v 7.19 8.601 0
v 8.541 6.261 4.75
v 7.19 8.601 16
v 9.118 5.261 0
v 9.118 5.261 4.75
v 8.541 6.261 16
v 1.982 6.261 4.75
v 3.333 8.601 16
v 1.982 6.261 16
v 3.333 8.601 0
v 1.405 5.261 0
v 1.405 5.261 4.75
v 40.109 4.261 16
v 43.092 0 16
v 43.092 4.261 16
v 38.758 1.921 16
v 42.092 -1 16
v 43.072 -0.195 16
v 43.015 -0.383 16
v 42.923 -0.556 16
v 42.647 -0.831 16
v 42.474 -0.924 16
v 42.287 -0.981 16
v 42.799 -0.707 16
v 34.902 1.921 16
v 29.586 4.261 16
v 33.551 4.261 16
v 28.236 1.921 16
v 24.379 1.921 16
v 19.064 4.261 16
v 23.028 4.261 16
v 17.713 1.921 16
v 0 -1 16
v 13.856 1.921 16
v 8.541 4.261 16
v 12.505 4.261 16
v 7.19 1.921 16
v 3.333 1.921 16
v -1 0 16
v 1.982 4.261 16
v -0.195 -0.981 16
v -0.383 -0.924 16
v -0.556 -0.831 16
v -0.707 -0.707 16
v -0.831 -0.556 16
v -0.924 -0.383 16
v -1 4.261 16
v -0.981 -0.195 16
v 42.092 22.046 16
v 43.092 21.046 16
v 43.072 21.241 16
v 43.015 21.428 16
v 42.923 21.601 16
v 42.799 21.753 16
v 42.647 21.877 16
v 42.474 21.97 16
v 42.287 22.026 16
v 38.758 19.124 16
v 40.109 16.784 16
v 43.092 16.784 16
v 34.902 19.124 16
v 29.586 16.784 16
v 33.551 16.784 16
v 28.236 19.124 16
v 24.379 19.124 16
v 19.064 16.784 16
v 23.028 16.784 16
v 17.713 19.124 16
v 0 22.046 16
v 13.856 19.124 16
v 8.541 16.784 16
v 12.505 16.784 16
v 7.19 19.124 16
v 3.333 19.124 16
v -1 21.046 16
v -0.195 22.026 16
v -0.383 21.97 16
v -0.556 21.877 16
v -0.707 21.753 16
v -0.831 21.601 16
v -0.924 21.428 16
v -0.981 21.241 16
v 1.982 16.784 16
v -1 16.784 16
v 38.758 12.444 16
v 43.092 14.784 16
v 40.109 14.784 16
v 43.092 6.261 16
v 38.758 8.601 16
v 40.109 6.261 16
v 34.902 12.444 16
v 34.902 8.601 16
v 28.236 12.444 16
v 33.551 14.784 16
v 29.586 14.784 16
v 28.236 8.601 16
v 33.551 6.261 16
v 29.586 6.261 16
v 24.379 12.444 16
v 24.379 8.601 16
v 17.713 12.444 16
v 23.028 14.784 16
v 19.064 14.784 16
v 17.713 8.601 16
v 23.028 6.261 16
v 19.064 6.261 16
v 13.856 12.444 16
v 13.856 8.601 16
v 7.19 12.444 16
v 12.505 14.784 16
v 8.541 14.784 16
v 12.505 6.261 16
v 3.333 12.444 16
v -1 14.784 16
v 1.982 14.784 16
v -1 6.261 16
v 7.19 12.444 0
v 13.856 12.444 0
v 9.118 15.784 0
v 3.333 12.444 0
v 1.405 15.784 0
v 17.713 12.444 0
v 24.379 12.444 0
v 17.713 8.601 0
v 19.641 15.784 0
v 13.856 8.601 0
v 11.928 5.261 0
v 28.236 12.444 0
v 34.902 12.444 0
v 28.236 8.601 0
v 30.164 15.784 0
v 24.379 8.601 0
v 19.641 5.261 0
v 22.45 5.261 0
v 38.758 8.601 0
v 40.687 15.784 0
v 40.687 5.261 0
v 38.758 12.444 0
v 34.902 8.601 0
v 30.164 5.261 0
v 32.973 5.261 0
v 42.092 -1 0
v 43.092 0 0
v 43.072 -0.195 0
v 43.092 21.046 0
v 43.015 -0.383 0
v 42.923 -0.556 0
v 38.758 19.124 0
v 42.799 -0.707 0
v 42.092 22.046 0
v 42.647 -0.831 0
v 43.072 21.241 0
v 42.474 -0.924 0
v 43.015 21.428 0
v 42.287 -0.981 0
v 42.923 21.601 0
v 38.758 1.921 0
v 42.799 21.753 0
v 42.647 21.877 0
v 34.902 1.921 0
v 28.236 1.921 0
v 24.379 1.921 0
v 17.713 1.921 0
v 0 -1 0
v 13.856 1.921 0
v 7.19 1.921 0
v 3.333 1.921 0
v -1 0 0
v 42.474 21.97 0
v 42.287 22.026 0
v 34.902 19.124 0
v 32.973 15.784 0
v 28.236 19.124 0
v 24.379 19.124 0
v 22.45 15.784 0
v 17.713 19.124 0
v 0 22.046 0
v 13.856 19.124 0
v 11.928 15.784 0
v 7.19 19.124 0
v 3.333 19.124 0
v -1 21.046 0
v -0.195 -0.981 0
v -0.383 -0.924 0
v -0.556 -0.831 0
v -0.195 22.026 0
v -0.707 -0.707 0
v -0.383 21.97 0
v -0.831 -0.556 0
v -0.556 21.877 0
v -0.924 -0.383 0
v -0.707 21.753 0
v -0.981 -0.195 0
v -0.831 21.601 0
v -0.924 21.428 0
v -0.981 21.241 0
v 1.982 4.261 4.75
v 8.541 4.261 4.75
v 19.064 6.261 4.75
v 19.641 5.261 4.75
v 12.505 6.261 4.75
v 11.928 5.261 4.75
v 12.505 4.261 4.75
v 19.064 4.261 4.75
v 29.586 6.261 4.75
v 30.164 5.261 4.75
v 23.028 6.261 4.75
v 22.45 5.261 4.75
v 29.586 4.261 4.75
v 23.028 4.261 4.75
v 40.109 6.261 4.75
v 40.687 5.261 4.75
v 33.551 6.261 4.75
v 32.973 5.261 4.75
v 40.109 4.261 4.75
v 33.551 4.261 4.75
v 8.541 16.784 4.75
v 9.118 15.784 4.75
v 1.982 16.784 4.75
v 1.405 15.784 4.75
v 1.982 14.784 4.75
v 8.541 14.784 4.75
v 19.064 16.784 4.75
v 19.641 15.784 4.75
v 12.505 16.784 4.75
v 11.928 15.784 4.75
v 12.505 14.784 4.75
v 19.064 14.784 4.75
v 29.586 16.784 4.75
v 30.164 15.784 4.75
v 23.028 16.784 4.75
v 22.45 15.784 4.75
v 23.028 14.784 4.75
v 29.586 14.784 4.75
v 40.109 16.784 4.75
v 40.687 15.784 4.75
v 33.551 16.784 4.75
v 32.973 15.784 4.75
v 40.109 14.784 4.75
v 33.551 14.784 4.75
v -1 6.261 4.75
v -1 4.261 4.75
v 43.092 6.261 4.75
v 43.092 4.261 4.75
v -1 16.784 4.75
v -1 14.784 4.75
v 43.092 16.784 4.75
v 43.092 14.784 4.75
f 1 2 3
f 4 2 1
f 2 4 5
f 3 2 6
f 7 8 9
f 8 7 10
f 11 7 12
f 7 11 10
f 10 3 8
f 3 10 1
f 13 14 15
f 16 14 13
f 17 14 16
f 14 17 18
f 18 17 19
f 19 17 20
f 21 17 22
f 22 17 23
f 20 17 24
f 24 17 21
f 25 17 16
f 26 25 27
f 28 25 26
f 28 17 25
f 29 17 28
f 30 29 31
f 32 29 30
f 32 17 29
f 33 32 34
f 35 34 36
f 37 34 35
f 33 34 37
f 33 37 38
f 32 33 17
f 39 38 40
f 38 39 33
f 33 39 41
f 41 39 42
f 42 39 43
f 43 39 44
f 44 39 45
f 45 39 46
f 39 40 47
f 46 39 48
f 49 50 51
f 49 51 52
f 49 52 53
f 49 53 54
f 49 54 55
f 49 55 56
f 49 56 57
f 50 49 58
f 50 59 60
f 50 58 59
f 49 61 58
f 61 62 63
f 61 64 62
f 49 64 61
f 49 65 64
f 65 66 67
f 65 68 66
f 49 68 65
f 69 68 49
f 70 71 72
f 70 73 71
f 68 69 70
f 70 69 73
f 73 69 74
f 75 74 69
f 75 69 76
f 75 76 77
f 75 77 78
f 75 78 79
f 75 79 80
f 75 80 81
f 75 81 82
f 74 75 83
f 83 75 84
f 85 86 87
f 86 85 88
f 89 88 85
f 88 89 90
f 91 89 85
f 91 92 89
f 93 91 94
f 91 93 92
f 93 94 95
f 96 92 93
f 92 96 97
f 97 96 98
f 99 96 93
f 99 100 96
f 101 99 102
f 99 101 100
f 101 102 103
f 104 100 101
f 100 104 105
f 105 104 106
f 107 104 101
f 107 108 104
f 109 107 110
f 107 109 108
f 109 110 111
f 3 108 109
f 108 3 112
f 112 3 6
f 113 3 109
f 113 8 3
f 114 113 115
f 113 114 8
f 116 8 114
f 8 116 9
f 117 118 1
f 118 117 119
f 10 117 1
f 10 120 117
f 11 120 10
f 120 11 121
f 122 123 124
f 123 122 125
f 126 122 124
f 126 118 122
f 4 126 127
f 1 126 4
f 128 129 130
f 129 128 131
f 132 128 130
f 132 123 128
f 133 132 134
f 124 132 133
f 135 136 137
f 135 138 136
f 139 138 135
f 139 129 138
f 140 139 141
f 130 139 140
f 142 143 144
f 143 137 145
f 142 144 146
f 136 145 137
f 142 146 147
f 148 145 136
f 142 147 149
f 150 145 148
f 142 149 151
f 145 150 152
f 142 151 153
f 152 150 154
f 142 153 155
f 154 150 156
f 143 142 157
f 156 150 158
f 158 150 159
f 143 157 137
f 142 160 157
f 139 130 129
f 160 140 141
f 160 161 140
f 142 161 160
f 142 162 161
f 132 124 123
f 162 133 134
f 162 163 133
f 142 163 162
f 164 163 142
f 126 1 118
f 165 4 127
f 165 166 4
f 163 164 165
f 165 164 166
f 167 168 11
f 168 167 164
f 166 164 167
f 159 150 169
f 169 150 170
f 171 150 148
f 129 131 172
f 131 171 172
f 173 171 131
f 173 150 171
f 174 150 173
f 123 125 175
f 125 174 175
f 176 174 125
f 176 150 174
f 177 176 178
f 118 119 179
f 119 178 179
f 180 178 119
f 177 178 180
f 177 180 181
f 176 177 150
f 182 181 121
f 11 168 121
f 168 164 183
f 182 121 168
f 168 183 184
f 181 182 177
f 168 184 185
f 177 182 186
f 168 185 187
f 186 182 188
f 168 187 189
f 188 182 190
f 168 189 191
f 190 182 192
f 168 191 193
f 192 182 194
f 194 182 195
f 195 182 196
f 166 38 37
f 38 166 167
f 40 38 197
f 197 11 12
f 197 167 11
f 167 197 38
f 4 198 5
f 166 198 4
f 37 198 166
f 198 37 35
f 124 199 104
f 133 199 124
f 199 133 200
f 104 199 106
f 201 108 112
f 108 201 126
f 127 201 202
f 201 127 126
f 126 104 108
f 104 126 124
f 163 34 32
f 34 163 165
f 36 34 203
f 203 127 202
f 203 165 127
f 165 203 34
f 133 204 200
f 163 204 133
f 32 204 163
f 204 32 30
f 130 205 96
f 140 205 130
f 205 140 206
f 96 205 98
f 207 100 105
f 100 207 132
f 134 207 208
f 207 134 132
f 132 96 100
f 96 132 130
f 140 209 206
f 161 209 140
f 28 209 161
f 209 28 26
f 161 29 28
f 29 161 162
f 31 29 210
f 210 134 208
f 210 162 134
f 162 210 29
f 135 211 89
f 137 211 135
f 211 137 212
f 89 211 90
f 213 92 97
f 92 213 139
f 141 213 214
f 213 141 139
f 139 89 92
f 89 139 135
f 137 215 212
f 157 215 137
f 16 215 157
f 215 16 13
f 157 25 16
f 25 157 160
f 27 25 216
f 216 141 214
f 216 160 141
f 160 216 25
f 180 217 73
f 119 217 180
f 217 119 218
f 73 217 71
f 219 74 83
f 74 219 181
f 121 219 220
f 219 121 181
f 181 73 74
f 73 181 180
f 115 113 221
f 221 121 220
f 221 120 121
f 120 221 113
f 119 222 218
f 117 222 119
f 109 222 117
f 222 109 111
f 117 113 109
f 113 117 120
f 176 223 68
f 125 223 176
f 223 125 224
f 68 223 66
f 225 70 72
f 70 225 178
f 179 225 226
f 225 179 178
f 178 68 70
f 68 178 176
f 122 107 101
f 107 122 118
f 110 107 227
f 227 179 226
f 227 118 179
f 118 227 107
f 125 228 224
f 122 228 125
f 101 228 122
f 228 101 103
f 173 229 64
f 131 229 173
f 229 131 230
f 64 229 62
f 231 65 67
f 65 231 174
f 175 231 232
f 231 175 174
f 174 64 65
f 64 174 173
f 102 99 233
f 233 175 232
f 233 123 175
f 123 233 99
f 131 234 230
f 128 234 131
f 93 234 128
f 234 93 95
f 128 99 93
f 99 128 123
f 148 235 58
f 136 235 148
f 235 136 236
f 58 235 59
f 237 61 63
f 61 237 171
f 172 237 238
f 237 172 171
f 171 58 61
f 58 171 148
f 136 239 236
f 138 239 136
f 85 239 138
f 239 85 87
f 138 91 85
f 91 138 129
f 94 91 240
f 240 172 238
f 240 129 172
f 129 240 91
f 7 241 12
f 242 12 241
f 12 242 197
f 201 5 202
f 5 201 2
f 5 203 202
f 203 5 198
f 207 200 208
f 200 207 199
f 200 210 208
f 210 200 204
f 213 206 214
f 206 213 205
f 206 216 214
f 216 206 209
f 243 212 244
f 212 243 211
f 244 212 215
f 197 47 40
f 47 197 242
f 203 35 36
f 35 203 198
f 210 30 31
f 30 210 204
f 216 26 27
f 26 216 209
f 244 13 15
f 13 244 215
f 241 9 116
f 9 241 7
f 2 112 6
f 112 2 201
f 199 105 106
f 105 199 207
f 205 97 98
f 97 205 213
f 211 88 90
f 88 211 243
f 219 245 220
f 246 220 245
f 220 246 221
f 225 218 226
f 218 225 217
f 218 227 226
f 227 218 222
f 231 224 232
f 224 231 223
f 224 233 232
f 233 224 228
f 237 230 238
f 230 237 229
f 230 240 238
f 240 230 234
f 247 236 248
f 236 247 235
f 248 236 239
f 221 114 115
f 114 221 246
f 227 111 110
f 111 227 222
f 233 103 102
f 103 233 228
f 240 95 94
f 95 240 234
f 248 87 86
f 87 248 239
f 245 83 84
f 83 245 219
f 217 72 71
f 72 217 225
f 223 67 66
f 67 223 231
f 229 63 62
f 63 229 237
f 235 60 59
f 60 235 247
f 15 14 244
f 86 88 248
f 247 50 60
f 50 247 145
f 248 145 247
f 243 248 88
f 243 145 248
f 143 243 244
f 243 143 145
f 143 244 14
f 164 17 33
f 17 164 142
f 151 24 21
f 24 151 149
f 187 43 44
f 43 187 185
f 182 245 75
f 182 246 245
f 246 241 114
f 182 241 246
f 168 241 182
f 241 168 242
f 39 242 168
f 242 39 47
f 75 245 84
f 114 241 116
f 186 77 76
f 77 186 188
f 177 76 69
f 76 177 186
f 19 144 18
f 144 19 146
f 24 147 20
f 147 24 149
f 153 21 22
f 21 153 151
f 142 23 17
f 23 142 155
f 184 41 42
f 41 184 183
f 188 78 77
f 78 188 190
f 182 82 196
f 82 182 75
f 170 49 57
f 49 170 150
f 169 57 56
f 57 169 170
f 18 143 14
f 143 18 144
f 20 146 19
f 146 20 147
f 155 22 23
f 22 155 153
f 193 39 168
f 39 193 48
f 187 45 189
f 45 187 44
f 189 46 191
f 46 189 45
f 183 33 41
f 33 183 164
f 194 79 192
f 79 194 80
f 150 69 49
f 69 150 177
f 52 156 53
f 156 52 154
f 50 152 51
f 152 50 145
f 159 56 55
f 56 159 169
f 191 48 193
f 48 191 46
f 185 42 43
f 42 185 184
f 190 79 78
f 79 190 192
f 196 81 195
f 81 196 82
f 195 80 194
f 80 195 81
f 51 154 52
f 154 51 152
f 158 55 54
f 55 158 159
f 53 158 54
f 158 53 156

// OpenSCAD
/**
	Customisable hex bit holder 
	Copyring Mykhaylo Lytvynyuk March 2015
	http://mobilemodding.info
	Released under 
	Attribution - Non-Commercial - No Derivatives License

	*** March 16, 2015 Initial Version
*/

// number of rows
_row = 2;//[0,1,2,3,4,5,6,7,8,9,10,11,12,13,14,15] 					

// number of columns
_colum = 4;//[0,1,2,3,4,5,6,7,8,9,10,11,12,13,14,15]
 					
// mm, base height
_height = 15;

// mm, printer tolerance, can be negative, required to compensate specific printer contraction/expansion during print.
_tolerance = 0.33;

//mm, between sides and bit
_extraPadding = 3;

// Rounded corners
_rounded = 1;//[1:Yes,0:No]

// Determines if hole goes compeltely through the base
_holeThrough = 1;	//[1:Yes,0:No]	

// Make slot to add flex to the walls
_slotted = 1;//[1:Yes,0:No]

// mm, defines bit zise ( 6.35 is 1/4" )
_bitSize = 6.35;

/* [Hidden] */
// local vars
outerRadius = outRadius(_bitSize + _tolerance/2,6);
delta = outerRadius + _extraPadding;
width = ( _colum * (outerRadius + _extraPadding) );
depth = ( _row * (outerRadius + _extraPadding) );
minkowskiCylinderHeight = 1;

module assembly() {

difference() {
	base();
	for(yd = [1:_row]) {
		for(xd = [1:_colum]) {
				translate([(xd * delta)-(delta/2),(yd *delta)-(delta/2),_holeThrough?0:1]) hexBit();
		}
		if(_slotted){
			translate([-2,(yd *delta)-(delta/2) - 1,minkowskiCylinderHeight + _height - _height * 0.75]) cube([width + 4,2,_height*0.75],center=false);
		}
	}
}

}

module hexBit() {
	cylinder(h=_height+minkowskiCylinderHeight,r=outRadius(_bitSize/2 + _tolerance/2,6),$fn=6, center = false);
}

module base() {
	minkowski() {
		cube([width,depth,_height]);
		if(_rounded) cylinder(r=1,h=minkowskiCylinderHeight,$fn=32,center = false);
	}
}

// calculates outradious by given inradius
function outRadius(inradius, sides) = inradius / ( cos (180 / sides));

assembly();
